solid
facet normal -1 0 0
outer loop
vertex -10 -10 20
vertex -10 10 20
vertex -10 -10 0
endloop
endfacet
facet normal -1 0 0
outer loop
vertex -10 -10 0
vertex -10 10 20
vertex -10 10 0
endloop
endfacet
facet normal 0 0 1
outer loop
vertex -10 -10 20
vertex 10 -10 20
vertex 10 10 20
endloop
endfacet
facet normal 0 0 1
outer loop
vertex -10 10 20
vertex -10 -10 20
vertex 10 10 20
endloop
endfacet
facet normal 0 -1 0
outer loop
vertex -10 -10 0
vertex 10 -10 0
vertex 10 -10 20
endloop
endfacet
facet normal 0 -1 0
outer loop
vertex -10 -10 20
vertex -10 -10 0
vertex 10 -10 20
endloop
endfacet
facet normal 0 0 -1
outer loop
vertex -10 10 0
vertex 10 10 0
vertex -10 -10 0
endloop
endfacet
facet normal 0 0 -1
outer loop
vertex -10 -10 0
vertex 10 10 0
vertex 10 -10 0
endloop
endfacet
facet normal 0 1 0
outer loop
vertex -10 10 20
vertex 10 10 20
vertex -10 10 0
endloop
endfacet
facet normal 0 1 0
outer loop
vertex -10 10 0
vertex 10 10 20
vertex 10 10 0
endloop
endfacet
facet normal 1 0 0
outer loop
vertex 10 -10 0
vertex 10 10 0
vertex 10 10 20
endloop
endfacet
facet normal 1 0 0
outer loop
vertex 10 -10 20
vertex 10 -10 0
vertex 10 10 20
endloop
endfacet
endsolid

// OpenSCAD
// Size of cube
size = 20;

translate([0, 0, size/2]) cube([size,size,size], center=true);
